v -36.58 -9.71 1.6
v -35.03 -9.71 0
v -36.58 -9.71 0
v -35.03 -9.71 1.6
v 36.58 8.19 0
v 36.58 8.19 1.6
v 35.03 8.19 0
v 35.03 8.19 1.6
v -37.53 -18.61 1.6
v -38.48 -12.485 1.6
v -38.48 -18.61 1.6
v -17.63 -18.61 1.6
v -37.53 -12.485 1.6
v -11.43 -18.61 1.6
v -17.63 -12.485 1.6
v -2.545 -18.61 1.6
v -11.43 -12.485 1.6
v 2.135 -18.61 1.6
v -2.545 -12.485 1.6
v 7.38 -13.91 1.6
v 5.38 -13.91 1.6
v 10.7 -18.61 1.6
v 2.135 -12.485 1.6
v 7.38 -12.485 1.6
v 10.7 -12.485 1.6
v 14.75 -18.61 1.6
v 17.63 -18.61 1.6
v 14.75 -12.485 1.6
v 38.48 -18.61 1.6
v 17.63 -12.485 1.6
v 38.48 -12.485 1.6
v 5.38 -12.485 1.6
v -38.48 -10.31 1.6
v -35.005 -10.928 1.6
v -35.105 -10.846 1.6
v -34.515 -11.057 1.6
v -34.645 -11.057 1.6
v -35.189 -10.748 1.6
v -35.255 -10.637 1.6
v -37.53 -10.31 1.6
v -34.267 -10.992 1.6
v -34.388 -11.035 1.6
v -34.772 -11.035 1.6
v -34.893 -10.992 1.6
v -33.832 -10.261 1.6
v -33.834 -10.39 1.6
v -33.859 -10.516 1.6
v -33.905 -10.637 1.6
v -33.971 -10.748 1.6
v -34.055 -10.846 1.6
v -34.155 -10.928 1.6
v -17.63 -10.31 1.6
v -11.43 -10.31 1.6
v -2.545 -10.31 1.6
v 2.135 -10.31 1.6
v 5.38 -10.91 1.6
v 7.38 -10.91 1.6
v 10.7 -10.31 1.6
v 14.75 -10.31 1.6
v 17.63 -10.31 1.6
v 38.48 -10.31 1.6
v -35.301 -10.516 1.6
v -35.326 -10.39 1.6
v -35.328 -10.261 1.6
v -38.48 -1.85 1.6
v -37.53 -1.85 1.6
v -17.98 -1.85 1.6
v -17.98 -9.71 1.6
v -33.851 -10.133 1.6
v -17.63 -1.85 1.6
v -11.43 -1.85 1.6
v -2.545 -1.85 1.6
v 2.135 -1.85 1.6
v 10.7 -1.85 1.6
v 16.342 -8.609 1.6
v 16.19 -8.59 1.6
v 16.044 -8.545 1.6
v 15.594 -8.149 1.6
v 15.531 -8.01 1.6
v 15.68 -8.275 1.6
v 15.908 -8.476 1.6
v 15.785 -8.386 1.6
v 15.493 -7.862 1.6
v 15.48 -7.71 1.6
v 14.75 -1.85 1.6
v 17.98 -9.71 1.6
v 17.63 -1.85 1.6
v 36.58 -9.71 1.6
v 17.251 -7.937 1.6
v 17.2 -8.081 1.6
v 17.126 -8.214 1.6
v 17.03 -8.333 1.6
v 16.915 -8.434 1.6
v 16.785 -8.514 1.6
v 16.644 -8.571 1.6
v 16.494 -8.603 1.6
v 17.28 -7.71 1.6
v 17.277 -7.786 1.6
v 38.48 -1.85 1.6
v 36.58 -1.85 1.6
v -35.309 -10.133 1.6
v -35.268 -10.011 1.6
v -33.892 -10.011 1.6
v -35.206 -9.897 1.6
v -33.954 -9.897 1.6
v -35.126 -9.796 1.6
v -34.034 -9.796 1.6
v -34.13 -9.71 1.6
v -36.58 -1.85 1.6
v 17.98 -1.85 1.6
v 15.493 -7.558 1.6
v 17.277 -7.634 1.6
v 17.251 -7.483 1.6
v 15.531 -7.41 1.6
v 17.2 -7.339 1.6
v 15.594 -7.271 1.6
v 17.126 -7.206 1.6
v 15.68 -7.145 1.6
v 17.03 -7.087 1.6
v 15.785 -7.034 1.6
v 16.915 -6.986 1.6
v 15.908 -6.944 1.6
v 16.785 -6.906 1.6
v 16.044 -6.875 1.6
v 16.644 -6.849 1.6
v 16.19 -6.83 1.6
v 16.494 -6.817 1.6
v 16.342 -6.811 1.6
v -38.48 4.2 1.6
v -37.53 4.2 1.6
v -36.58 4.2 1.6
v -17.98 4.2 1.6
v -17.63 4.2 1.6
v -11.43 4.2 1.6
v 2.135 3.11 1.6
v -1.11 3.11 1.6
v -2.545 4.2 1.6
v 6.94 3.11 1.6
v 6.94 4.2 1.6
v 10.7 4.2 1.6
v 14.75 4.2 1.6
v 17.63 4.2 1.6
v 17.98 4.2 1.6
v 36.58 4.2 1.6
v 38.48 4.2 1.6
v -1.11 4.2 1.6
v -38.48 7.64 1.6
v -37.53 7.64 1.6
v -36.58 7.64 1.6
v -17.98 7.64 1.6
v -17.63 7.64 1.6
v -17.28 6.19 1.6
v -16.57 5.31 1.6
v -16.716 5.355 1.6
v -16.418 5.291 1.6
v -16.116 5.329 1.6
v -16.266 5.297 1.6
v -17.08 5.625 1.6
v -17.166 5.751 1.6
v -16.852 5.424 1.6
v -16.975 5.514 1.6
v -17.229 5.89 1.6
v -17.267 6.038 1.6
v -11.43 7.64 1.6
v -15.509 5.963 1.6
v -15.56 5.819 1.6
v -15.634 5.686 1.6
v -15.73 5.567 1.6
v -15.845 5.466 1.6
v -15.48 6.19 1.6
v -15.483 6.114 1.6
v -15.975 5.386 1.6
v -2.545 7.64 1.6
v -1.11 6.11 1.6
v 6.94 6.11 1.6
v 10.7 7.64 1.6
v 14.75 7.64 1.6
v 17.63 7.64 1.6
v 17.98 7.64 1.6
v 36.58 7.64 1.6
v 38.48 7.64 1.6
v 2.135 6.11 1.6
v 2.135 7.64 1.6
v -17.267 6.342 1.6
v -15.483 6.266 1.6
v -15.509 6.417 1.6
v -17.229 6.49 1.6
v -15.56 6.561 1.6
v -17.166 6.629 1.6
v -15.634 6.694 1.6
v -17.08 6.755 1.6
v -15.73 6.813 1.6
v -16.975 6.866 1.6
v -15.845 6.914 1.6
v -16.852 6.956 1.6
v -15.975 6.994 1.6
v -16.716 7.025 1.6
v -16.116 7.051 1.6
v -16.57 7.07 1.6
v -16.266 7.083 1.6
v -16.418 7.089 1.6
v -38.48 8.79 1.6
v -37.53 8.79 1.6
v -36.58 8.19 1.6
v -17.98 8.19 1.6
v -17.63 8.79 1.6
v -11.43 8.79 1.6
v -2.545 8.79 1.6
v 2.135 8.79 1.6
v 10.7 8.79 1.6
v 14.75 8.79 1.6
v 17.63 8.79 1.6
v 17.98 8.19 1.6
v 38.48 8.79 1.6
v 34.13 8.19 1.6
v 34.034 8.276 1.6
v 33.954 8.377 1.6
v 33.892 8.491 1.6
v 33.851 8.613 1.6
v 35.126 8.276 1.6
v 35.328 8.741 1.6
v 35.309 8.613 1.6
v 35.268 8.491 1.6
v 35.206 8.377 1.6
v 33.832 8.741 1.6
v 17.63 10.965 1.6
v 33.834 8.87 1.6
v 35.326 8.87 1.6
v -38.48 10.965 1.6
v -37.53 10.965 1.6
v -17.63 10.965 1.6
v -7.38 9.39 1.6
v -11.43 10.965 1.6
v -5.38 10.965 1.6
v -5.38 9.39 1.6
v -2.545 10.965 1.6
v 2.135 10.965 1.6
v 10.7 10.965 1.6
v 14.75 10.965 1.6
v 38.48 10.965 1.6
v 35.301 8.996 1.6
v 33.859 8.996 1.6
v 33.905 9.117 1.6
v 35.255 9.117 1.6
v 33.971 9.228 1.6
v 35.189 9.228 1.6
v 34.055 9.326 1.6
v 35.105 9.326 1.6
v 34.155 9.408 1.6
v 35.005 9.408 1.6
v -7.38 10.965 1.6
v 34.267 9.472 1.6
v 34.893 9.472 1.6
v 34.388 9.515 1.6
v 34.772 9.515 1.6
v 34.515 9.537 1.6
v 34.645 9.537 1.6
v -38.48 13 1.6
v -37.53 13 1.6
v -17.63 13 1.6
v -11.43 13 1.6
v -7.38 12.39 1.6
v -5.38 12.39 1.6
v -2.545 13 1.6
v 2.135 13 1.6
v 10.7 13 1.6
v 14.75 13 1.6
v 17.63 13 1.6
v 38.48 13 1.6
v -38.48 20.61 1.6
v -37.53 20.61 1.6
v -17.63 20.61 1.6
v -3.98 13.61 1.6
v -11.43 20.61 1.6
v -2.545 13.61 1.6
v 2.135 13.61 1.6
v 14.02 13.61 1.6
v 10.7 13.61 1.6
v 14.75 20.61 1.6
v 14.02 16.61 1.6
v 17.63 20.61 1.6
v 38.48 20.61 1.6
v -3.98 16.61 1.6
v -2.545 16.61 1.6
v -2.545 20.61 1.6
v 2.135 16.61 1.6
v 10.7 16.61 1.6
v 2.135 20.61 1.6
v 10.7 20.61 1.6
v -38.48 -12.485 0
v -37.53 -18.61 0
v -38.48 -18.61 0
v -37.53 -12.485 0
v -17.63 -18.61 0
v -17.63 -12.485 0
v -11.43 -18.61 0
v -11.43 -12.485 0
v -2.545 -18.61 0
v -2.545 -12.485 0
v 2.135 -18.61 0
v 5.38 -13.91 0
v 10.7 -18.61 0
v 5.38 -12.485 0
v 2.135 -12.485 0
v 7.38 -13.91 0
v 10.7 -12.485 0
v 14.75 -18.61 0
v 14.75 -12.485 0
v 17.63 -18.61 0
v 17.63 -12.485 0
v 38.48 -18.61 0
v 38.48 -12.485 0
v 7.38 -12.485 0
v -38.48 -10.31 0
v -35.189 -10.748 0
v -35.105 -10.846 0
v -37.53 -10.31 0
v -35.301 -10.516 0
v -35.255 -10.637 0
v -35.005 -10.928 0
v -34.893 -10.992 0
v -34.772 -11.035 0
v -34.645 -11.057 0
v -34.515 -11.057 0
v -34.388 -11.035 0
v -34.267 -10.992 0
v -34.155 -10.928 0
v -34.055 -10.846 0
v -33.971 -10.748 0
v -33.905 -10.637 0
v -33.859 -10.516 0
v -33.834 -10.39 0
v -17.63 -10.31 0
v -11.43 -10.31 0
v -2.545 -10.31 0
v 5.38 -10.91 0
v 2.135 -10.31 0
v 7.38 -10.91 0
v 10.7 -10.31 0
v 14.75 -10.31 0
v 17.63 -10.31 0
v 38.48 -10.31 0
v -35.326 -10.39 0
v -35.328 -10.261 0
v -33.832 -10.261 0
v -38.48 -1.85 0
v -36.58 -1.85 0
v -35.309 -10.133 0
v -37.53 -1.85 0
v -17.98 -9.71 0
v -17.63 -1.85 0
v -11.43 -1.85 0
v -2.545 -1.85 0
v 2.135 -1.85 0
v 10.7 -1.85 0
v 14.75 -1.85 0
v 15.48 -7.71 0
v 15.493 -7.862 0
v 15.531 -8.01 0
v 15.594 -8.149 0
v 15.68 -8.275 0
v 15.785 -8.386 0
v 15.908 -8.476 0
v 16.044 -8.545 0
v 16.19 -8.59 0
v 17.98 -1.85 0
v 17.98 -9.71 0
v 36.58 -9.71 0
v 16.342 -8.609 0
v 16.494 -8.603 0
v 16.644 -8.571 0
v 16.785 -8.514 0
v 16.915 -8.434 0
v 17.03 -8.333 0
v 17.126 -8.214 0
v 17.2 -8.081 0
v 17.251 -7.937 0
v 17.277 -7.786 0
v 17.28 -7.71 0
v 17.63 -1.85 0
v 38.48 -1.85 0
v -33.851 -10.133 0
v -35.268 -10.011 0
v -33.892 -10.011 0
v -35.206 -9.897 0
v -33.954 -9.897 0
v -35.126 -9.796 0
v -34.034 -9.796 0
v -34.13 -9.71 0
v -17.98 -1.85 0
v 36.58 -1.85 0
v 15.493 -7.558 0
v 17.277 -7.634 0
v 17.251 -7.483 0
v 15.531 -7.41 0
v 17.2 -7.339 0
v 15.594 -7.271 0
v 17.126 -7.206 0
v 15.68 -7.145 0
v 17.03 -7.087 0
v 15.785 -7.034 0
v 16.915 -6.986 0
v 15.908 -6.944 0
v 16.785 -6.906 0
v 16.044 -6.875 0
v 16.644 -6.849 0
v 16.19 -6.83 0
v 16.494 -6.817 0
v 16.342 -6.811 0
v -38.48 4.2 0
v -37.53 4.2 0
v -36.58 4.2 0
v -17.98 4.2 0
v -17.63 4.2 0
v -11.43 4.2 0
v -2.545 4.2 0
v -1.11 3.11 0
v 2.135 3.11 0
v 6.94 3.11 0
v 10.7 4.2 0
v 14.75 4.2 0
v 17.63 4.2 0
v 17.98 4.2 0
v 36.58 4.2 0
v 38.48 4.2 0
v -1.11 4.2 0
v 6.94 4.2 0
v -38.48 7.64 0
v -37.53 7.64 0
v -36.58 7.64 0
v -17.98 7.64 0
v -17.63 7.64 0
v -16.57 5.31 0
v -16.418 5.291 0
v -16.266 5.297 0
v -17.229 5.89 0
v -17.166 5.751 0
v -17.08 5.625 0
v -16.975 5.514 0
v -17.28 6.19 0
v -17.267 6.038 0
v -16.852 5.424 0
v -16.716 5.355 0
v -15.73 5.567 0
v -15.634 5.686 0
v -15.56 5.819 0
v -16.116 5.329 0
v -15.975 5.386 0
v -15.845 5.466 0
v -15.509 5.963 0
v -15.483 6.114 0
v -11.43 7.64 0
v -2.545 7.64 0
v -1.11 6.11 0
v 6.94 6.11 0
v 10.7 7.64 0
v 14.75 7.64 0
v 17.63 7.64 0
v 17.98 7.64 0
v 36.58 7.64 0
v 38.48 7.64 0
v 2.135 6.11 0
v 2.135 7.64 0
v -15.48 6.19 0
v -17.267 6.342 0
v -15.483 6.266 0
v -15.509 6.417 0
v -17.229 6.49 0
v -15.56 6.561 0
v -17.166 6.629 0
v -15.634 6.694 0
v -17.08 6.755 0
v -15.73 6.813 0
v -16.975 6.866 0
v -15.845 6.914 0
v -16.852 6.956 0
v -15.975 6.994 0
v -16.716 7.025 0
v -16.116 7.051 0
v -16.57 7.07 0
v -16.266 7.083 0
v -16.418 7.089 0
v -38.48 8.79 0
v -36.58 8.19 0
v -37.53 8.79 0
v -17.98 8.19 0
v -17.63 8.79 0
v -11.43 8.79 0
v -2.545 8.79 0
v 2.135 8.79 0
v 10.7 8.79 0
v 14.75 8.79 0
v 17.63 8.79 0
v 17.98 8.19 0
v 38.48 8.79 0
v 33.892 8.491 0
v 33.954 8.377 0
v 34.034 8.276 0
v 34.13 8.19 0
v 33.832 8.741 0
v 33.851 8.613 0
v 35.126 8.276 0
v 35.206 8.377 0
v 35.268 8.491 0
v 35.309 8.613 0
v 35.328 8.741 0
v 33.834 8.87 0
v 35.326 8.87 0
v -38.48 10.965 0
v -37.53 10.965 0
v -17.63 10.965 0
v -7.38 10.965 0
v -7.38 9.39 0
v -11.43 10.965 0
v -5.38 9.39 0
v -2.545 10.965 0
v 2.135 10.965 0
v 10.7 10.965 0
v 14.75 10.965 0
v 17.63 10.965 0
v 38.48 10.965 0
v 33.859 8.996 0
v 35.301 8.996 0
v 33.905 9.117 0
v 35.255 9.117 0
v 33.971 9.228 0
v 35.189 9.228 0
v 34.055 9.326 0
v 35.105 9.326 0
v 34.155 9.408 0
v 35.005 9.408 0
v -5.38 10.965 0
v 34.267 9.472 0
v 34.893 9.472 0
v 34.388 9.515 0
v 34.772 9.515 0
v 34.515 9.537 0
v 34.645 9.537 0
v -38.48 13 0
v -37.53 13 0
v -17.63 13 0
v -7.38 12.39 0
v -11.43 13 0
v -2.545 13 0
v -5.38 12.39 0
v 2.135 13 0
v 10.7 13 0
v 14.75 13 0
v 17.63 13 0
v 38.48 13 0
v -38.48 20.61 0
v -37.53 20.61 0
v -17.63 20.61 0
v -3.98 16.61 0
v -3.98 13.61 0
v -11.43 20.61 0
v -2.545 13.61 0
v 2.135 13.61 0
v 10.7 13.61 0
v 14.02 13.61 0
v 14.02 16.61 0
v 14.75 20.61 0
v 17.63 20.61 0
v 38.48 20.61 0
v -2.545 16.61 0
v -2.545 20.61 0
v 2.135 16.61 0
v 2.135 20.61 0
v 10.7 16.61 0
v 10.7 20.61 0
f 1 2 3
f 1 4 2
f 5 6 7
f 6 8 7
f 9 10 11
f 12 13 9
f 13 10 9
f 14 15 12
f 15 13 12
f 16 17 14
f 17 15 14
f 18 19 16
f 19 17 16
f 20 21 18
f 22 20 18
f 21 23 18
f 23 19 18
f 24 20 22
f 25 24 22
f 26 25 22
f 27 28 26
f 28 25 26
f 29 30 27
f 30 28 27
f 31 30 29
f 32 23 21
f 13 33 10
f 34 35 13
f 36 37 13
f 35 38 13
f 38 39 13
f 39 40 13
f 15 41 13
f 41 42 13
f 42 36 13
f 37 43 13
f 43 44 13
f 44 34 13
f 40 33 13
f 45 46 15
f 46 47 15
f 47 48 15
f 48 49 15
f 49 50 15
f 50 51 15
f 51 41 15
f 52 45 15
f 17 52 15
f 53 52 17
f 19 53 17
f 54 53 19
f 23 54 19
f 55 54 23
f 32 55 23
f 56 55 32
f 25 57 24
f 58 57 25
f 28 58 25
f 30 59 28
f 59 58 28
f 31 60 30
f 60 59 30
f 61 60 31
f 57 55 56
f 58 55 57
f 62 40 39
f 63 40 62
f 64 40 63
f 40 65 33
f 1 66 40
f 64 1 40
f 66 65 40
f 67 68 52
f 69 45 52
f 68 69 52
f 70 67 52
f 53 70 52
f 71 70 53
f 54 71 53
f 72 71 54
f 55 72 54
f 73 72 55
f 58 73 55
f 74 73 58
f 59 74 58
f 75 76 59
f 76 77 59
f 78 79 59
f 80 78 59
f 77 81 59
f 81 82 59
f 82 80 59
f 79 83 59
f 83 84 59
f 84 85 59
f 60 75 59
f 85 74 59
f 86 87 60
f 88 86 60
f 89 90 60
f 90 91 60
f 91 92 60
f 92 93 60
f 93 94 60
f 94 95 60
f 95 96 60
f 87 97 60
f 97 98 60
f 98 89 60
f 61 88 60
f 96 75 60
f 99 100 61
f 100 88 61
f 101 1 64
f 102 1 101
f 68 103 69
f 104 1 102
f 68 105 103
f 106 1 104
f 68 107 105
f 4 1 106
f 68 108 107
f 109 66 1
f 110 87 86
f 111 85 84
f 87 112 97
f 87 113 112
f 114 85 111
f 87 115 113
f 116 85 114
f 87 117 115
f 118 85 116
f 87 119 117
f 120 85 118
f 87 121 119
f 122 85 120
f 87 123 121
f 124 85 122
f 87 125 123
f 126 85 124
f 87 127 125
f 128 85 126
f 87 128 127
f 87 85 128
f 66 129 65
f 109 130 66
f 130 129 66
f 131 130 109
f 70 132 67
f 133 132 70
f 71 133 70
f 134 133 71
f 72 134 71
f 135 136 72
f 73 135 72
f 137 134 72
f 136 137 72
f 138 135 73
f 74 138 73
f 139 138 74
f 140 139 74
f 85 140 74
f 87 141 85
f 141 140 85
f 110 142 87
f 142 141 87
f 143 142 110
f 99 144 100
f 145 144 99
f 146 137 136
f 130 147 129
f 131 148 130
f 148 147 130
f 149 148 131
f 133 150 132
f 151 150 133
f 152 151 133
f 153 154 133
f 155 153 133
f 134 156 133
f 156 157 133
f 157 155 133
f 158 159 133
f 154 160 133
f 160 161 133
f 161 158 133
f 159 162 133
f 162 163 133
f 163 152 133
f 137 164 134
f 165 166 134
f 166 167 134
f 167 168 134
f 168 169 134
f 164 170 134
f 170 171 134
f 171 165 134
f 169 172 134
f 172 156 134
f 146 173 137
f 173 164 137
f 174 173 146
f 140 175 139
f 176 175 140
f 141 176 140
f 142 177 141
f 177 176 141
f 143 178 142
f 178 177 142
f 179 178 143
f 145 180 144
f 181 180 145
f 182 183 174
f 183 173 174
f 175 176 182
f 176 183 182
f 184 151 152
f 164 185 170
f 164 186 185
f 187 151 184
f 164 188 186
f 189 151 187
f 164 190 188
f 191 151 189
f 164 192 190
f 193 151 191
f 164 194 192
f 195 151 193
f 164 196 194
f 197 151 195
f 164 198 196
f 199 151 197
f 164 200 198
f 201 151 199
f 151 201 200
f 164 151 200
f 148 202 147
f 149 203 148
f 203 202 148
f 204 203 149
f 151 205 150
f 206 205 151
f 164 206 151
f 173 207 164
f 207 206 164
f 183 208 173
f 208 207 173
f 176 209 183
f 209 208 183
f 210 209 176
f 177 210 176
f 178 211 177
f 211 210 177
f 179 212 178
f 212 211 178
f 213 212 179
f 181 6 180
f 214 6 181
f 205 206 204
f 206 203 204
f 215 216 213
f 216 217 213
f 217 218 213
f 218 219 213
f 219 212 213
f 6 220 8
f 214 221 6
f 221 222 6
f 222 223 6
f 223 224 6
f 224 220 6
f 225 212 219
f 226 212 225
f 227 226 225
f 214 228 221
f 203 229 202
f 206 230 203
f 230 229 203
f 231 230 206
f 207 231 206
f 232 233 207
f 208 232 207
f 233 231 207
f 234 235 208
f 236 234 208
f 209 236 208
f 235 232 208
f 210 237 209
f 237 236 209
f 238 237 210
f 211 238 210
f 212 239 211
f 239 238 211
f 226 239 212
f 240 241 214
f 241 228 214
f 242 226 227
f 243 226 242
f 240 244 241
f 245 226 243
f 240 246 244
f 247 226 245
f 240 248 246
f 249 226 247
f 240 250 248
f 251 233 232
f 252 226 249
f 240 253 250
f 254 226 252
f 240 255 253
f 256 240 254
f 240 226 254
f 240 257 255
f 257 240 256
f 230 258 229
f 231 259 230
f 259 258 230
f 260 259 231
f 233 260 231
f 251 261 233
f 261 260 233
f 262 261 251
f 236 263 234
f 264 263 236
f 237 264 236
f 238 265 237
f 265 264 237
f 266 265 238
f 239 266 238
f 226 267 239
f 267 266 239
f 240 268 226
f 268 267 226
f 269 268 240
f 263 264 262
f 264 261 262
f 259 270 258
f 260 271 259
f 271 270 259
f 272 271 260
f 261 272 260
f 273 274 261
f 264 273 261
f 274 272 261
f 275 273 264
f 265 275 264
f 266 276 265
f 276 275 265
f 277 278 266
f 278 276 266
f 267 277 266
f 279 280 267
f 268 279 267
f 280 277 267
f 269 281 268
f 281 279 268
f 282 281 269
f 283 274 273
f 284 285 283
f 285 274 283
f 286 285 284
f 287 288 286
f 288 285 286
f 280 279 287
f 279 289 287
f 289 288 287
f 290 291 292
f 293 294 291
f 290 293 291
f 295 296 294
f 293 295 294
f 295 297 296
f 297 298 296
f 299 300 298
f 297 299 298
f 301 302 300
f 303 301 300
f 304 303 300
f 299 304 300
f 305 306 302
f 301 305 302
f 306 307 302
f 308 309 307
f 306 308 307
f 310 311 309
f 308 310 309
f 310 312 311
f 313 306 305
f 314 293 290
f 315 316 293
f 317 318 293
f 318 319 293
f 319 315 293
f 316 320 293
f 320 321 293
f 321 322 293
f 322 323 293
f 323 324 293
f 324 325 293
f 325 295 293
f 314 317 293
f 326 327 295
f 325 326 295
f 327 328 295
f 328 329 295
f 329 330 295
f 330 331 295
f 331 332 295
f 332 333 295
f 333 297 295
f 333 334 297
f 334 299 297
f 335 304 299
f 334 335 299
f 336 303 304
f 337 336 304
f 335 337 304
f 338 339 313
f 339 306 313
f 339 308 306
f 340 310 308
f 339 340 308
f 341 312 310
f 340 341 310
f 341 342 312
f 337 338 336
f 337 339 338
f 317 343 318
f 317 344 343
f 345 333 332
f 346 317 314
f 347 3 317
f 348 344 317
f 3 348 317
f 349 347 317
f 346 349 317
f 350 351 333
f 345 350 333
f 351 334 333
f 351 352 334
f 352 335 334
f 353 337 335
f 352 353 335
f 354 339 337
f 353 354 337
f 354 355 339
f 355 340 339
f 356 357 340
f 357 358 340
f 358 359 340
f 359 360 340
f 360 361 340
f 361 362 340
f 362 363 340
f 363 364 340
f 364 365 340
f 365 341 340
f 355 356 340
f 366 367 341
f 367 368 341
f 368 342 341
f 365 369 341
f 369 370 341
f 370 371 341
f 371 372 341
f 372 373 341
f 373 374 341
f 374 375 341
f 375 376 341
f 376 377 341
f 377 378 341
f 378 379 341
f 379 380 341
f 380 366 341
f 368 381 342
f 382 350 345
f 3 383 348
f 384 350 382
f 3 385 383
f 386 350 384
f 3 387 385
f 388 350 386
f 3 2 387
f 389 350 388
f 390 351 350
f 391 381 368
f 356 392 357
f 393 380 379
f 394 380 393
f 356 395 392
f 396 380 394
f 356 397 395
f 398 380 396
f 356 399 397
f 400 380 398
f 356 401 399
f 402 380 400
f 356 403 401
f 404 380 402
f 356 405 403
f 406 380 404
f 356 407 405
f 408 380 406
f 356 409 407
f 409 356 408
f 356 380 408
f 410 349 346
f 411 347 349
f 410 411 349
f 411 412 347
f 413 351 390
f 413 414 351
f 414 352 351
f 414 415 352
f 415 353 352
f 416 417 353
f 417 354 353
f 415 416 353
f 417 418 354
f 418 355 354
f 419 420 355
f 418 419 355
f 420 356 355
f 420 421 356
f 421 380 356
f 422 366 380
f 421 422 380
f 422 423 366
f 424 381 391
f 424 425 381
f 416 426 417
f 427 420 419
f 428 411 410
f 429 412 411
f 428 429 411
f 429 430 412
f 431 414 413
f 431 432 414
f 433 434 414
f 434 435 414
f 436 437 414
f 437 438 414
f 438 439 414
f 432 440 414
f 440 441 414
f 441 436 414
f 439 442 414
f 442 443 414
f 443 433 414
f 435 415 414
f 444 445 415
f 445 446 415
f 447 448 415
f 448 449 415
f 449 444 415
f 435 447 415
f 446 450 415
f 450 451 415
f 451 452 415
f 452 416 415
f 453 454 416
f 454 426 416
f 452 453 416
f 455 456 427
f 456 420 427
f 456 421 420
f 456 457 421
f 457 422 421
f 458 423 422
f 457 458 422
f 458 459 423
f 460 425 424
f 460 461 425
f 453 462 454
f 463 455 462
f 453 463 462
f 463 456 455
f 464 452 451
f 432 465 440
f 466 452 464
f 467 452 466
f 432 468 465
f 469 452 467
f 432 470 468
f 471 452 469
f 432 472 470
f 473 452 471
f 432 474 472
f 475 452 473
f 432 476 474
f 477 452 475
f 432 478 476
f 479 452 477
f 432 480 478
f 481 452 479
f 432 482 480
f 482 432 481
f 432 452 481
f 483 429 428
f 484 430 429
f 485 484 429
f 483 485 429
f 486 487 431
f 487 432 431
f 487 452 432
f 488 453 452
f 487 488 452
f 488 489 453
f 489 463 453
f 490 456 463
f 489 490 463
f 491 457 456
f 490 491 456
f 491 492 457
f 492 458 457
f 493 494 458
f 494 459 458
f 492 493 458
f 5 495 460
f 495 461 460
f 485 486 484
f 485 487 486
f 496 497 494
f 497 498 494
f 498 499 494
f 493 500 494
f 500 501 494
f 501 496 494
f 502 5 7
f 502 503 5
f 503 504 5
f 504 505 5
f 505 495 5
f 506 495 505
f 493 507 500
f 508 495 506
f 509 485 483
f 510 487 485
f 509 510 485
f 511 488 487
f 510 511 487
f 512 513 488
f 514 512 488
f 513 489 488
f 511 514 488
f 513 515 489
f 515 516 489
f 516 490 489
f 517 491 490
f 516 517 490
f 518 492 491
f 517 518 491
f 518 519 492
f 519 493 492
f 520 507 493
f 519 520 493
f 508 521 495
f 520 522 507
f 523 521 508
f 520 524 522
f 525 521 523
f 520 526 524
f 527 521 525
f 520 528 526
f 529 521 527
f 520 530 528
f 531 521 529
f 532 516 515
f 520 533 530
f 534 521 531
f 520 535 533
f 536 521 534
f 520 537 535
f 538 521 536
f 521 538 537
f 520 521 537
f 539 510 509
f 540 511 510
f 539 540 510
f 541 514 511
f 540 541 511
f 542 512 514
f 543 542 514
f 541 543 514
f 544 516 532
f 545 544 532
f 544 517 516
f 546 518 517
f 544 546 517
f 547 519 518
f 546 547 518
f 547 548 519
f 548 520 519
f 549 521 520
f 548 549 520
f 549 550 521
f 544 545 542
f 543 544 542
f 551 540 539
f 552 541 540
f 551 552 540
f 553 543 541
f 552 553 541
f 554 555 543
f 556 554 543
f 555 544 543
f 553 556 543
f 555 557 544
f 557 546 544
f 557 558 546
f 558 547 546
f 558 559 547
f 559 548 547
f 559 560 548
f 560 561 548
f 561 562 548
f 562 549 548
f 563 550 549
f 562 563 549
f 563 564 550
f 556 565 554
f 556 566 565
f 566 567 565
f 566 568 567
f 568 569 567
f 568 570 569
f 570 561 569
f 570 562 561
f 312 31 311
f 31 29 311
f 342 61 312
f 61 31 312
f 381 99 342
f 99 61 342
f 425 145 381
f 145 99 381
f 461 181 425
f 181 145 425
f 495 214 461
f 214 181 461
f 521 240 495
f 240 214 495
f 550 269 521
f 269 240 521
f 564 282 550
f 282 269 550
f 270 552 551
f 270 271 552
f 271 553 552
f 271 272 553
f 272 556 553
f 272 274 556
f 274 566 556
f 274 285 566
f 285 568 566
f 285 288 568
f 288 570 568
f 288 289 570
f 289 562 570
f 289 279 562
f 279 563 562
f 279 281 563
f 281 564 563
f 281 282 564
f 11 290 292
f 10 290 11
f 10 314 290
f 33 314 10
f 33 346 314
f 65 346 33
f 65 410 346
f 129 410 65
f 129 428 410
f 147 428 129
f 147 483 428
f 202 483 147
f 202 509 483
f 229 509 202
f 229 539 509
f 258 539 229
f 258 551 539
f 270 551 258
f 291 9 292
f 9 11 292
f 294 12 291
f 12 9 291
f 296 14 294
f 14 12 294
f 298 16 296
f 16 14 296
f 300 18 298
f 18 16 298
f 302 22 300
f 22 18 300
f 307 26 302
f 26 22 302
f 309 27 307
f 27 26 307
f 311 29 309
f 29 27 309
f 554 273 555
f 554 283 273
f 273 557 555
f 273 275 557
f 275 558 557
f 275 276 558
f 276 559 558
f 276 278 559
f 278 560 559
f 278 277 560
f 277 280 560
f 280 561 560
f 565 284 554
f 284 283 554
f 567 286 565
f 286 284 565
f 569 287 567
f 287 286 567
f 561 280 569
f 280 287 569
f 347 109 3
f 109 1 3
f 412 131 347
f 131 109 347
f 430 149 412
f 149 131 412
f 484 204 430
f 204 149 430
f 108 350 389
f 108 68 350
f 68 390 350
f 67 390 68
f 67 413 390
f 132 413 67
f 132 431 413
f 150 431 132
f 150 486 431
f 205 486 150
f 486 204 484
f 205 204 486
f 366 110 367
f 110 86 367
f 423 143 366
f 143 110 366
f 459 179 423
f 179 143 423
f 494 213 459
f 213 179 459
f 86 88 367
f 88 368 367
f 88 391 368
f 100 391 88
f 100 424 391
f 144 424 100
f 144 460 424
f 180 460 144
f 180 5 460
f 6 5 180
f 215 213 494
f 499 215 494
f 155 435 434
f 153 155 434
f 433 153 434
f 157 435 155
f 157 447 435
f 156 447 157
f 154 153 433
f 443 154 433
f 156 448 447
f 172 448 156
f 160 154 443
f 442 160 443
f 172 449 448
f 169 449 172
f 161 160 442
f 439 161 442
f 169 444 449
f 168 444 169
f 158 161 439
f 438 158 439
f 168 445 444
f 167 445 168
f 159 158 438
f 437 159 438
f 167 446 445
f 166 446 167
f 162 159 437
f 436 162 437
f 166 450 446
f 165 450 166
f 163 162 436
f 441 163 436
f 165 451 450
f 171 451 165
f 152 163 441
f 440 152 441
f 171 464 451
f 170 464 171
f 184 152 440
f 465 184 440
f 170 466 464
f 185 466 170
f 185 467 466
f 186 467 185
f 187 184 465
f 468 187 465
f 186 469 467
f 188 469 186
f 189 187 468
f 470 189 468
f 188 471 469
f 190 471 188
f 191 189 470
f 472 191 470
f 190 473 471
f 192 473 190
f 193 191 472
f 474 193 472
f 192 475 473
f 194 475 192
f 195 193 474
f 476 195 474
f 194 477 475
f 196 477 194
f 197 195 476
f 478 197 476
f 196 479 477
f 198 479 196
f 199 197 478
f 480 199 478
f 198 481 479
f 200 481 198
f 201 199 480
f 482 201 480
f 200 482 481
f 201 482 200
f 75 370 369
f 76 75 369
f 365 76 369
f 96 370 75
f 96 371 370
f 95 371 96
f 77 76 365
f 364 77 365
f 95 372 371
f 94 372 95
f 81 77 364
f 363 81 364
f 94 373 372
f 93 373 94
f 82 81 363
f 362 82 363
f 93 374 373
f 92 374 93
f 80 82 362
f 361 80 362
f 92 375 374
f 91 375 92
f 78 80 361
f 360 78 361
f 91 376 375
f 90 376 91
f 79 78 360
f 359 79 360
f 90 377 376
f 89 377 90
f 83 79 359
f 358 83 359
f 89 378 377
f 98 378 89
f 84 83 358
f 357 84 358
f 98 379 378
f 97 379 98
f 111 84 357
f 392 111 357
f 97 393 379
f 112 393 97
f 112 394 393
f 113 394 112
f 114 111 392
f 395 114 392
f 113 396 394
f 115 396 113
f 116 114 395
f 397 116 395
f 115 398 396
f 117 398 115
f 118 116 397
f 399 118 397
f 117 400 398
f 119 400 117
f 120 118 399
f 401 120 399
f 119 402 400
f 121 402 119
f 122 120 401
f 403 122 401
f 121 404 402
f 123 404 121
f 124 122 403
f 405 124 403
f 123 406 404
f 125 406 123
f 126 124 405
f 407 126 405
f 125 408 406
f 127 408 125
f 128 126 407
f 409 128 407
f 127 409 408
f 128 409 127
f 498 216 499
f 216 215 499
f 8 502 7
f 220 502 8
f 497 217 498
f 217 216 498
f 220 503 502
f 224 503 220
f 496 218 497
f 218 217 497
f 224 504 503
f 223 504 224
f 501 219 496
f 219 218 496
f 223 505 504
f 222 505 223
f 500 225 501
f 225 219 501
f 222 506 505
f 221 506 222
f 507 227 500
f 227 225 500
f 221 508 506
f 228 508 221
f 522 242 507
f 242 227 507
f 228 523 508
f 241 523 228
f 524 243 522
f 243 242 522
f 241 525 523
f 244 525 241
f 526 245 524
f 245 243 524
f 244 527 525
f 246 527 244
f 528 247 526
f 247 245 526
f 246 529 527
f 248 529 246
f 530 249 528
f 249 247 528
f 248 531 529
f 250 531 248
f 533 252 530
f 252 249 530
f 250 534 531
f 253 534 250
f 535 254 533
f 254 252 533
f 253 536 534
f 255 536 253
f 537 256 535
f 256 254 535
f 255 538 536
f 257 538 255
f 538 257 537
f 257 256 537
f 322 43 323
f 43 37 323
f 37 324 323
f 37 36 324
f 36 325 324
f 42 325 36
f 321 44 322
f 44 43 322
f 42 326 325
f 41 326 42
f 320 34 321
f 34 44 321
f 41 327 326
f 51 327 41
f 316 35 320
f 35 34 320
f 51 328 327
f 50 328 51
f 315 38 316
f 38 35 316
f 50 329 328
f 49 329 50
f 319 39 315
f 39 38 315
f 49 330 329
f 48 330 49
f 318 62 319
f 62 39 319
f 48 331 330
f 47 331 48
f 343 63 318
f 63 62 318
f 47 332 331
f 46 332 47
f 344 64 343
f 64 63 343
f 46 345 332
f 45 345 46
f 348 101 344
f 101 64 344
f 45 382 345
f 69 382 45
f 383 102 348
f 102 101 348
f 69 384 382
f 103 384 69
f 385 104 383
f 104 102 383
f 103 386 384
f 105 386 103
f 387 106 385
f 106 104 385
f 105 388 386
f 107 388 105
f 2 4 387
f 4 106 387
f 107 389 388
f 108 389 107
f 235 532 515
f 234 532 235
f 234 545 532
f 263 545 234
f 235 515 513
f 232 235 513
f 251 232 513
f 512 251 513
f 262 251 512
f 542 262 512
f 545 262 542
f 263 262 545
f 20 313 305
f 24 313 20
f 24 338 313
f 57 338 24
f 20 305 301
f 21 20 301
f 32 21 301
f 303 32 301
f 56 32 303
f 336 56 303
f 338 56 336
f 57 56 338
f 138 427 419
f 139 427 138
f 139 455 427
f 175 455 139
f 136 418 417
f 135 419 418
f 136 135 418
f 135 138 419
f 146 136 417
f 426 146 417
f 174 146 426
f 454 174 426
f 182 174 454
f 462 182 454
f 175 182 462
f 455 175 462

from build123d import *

# Parameters (mm, degrees)
SKETCH_1_W          = 76.96
SKETCH_1_H          = 39.22
SKETCH_1_R          = 0.9
SKETCH_1_W_2        = 18
SKETCH_1_H_2        = 3
SKETCH_1_W_3        = 18.6
SKETCH_1_H_3        = 17.9
EXTRUDE_1_DEPTH     = 1.6
SKETCH_2_R          = 0.75
CUT_EXTRUDE_1_DEPTH = 1.6
SKETCH_3_W          = 2
SKETCH_3_H          = 3
CUT_EXTRUDE_2_DEPTH = 1.6
SKETCH_5_W          = 8.05
SKETCH_5_H          = 3
CUT_EXTRUDE_3_DEPTH = 10


with BuildPart() as part:
    # 草图1 → 凸台-拉伸1 (new body)
    with BuildSketch(Plane.XY):
        with Locations((0, 1)):
            Rectangle(SKETCH_1_W, SKETCH_1_H)
        with Locations((-16.38, 6.19)):
            Circle(SKETCH_1_R, mode=Mode.SUBTRACT)
        with Locations((16.38, -7.71)):
            Circle(SKETCH_1_R, mode=Mode.SUBTRACT)
        with Locations((5.02, 15.11)):
            Rectangle(SKETCH_1_W_2, SKETCH_1_H_2, mode=Mode.SUBTRACT)
        with Locations((-27.28, -0.76)):
            Rectangle(SKETCH_1_W_3, SKETCH_1_H_3, mode=Mode.SUBTRACT)
        with Locations((27.28, -0.76)):
            Rectangle(SKETCH_1_W_3, SKETCH_1_H_3, mode=Mode.SUBTRACT)
    extrude(amount=EXTRUDE_1_DEPTH)

    # 草图2 → 切除-拉伸1 (cut)
    with BuildSketch(Plane.XY.offset(1.6)):
        with Locations((34.58, 8.79)):
            Circle(SKETCH_2_R)
        with Locations((-34.58, -10.31)):
            Circle(SKETCH_2_R)
    extrude(amount=-CUT_EXTRUDE_1_DEPTH, mode=Mode.SUBTRACT)

    # 草图3 → 切除-拉伸2 (cut)
    with BuildSketch(Plane.XY.offset(1.6)):
        with Locations((6.38, -12.41)):
            Rectangle(SKETCH_3_W, SKETCH_3_H)
        with Locations((-6.38, 10.89)):
            Rectangle(SKETCH_3_W, SKETCH_3_H)
    extrude(amount=-CUT_EXTRUDE_2_DEPTH, mode=Mode.SUBTRACT)

    # 草图5 → 切除-拉伸3 (cut)
    with BuildSketch(Plane.XY.offset(1.6)):
        with Locations((2.915, 4.61)):
            Rectangle(SKETCH_5_W, SKETCH_5_H)
    extrude(amount=-CUT_EXTRUDE_3_DEPTH, mode=Mode.SUBTRACT)


solid = part.part
